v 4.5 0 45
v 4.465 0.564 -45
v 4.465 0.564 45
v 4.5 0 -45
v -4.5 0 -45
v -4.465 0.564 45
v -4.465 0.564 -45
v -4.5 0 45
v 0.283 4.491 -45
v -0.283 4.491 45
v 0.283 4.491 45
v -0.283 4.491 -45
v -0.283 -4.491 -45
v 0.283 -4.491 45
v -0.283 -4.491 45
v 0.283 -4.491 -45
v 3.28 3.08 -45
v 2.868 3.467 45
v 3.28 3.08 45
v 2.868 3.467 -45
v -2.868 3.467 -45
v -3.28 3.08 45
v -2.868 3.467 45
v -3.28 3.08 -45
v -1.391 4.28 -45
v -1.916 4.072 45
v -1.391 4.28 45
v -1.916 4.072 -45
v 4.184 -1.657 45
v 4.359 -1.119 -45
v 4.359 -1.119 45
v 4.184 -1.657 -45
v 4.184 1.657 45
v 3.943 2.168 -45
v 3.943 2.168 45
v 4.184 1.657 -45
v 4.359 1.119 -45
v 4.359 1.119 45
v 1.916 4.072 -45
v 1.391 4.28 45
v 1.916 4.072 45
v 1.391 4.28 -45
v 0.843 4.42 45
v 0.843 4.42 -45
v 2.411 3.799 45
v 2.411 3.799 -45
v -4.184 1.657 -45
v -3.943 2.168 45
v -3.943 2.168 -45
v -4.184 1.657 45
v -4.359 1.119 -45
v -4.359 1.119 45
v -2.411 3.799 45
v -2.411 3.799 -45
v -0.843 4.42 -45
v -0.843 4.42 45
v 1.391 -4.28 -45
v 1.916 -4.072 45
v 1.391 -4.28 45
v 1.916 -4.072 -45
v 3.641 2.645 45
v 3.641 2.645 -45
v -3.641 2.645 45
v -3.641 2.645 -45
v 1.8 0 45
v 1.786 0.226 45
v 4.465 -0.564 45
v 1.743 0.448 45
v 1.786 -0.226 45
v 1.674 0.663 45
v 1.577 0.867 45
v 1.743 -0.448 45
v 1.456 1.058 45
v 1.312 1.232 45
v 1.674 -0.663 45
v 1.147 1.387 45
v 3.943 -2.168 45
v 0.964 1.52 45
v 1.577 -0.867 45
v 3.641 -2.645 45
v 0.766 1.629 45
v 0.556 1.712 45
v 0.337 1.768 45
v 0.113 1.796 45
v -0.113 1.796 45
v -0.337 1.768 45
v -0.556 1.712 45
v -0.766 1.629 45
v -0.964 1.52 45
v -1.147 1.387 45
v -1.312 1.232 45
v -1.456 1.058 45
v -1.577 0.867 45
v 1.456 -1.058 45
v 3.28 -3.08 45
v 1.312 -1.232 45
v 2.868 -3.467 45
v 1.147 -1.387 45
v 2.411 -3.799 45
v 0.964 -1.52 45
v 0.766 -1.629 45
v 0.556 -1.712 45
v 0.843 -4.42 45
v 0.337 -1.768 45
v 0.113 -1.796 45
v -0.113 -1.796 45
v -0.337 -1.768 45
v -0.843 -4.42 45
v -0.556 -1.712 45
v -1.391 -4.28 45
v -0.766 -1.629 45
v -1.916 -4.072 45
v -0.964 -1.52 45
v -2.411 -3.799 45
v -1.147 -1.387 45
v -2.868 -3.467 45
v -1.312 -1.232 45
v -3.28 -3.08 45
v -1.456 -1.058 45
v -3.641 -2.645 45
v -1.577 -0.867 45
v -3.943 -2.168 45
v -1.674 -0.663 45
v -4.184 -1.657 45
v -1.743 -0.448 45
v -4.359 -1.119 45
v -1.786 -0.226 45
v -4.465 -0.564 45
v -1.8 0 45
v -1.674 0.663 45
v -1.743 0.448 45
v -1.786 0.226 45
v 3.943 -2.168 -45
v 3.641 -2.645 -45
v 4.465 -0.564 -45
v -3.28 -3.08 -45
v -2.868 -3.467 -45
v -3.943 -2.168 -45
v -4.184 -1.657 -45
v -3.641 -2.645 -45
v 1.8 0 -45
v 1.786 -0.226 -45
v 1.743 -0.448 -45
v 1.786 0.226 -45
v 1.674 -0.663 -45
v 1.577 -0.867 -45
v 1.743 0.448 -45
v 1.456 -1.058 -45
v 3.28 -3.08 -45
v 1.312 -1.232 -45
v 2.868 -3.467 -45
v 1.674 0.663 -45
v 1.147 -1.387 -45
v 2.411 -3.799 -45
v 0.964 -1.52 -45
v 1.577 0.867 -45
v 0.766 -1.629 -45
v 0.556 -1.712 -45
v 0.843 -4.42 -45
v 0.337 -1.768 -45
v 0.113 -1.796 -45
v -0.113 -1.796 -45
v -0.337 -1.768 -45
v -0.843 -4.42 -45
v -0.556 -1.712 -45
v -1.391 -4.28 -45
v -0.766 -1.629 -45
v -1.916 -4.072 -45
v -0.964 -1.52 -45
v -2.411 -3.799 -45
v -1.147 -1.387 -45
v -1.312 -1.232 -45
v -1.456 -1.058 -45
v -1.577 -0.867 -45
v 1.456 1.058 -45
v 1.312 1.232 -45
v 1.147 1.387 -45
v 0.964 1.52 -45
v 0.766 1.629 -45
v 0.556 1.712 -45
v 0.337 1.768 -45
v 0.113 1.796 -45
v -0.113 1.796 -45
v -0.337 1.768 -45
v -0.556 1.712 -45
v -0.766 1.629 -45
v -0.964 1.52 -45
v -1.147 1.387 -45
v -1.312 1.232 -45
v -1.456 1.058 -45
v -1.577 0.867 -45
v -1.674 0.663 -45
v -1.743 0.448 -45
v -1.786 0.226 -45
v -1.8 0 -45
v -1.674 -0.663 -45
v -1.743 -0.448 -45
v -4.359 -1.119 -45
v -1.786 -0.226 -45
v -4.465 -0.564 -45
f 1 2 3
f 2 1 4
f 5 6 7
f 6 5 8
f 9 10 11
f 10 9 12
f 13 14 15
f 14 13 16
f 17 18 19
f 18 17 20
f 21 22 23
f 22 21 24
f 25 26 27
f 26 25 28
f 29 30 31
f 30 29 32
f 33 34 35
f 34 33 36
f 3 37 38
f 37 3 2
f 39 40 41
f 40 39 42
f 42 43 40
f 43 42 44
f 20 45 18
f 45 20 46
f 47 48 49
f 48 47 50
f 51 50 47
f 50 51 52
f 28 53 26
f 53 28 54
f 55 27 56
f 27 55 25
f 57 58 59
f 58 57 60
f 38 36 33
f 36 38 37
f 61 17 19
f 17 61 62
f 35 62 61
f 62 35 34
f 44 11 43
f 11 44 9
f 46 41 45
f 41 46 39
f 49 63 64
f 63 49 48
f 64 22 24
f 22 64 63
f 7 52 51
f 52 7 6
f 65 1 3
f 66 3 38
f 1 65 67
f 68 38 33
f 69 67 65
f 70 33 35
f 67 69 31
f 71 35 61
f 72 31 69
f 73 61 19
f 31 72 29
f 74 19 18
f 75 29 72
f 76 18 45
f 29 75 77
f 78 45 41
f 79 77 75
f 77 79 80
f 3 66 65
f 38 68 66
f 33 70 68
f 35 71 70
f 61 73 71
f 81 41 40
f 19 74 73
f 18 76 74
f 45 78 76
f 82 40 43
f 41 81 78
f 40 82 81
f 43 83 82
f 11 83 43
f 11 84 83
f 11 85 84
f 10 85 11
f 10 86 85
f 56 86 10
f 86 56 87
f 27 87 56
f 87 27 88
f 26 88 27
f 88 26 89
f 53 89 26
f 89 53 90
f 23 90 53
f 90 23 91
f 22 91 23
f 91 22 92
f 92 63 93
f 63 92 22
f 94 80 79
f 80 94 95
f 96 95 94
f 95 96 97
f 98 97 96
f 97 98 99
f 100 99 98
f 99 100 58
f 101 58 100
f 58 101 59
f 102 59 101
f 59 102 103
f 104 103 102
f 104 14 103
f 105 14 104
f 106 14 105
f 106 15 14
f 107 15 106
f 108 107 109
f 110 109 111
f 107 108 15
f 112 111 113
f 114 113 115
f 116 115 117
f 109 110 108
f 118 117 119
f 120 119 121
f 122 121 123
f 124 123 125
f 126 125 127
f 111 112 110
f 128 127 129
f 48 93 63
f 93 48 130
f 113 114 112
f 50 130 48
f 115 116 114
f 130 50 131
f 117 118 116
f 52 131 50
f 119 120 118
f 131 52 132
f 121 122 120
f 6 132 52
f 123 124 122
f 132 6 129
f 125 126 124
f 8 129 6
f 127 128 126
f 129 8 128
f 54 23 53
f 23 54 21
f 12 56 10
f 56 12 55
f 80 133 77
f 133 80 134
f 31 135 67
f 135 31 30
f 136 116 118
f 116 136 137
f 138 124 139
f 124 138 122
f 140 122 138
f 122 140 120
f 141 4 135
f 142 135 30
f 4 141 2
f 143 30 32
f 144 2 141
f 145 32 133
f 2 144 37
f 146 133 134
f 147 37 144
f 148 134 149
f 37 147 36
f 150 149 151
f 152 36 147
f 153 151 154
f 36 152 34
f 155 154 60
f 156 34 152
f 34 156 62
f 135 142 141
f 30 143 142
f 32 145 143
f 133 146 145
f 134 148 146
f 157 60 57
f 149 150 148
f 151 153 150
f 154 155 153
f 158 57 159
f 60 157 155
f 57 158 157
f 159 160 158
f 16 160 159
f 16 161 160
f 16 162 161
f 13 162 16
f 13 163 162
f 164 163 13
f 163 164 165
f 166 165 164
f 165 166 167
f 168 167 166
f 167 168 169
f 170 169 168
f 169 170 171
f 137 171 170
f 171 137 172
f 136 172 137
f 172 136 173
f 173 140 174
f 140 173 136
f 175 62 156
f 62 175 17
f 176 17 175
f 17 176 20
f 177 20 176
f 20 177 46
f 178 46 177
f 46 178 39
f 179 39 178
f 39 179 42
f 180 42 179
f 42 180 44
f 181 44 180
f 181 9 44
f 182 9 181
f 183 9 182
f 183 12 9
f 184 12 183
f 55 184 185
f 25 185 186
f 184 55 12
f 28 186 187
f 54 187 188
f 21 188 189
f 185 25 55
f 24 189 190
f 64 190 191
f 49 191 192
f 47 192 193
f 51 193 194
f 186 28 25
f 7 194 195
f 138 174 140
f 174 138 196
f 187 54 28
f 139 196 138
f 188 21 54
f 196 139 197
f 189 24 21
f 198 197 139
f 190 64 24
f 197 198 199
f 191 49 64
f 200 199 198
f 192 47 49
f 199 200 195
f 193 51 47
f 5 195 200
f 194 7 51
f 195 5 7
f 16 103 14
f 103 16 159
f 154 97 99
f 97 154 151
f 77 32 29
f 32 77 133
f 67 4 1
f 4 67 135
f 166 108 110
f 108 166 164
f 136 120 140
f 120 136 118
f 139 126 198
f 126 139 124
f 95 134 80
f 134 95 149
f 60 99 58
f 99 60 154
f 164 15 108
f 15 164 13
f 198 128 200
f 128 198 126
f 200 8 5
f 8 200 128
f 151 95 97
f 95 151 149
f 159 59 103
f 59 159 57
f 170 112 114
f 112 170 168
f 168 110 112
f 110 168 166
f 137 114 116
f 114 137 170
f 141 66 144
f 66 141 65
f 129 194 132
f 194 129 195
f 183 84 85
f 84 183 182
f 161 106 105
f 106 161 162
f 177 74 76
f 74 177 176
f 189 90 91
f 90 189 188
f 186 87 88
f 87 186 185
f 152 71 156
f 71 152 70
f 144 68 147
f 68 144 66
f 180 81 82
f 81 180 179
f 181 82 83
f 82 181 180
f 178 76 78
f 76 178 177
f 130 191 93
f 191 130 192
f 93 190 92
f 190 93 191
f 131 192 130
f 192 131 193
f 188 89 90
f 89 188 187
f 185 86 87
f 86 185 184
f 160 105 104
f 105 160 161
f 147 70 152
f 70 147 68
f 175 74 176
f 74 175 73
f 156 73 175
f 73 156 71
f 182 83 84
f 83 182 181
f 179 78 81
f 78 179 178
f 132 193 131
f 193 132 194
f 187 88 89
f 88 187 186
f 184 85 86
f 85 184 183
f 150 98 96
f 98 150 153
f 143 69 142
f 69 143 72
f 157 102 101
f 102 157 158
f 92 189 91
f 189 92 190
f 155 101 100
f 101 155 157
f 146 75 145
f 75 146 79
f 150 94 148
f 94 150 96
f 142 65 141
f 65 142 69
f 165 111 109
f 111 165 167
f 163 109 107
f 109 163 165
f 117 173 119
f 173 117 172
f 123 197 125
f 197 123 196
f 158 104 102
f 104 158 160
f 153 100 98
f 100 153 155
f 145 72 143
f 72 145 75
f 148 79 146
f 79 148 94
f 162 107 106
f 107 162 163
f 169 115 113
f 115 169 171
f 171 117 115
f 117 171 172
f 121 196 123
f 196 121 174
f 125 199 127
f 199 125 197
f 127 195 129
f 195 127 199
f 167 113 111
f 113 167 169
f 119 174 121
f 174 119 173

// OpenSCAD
$fn = 50;


difference() {
	union() {
		translate(v = [0, 0, -45.0000000000]) {
			cylinder(h = 90, r = 4.5000000000);
		}
	}
	union() {
		translate(v = [0, 0, -100.0000000000]) {
			cylinder(h = 200, r = 1.8000000000);
		}
	}
}
